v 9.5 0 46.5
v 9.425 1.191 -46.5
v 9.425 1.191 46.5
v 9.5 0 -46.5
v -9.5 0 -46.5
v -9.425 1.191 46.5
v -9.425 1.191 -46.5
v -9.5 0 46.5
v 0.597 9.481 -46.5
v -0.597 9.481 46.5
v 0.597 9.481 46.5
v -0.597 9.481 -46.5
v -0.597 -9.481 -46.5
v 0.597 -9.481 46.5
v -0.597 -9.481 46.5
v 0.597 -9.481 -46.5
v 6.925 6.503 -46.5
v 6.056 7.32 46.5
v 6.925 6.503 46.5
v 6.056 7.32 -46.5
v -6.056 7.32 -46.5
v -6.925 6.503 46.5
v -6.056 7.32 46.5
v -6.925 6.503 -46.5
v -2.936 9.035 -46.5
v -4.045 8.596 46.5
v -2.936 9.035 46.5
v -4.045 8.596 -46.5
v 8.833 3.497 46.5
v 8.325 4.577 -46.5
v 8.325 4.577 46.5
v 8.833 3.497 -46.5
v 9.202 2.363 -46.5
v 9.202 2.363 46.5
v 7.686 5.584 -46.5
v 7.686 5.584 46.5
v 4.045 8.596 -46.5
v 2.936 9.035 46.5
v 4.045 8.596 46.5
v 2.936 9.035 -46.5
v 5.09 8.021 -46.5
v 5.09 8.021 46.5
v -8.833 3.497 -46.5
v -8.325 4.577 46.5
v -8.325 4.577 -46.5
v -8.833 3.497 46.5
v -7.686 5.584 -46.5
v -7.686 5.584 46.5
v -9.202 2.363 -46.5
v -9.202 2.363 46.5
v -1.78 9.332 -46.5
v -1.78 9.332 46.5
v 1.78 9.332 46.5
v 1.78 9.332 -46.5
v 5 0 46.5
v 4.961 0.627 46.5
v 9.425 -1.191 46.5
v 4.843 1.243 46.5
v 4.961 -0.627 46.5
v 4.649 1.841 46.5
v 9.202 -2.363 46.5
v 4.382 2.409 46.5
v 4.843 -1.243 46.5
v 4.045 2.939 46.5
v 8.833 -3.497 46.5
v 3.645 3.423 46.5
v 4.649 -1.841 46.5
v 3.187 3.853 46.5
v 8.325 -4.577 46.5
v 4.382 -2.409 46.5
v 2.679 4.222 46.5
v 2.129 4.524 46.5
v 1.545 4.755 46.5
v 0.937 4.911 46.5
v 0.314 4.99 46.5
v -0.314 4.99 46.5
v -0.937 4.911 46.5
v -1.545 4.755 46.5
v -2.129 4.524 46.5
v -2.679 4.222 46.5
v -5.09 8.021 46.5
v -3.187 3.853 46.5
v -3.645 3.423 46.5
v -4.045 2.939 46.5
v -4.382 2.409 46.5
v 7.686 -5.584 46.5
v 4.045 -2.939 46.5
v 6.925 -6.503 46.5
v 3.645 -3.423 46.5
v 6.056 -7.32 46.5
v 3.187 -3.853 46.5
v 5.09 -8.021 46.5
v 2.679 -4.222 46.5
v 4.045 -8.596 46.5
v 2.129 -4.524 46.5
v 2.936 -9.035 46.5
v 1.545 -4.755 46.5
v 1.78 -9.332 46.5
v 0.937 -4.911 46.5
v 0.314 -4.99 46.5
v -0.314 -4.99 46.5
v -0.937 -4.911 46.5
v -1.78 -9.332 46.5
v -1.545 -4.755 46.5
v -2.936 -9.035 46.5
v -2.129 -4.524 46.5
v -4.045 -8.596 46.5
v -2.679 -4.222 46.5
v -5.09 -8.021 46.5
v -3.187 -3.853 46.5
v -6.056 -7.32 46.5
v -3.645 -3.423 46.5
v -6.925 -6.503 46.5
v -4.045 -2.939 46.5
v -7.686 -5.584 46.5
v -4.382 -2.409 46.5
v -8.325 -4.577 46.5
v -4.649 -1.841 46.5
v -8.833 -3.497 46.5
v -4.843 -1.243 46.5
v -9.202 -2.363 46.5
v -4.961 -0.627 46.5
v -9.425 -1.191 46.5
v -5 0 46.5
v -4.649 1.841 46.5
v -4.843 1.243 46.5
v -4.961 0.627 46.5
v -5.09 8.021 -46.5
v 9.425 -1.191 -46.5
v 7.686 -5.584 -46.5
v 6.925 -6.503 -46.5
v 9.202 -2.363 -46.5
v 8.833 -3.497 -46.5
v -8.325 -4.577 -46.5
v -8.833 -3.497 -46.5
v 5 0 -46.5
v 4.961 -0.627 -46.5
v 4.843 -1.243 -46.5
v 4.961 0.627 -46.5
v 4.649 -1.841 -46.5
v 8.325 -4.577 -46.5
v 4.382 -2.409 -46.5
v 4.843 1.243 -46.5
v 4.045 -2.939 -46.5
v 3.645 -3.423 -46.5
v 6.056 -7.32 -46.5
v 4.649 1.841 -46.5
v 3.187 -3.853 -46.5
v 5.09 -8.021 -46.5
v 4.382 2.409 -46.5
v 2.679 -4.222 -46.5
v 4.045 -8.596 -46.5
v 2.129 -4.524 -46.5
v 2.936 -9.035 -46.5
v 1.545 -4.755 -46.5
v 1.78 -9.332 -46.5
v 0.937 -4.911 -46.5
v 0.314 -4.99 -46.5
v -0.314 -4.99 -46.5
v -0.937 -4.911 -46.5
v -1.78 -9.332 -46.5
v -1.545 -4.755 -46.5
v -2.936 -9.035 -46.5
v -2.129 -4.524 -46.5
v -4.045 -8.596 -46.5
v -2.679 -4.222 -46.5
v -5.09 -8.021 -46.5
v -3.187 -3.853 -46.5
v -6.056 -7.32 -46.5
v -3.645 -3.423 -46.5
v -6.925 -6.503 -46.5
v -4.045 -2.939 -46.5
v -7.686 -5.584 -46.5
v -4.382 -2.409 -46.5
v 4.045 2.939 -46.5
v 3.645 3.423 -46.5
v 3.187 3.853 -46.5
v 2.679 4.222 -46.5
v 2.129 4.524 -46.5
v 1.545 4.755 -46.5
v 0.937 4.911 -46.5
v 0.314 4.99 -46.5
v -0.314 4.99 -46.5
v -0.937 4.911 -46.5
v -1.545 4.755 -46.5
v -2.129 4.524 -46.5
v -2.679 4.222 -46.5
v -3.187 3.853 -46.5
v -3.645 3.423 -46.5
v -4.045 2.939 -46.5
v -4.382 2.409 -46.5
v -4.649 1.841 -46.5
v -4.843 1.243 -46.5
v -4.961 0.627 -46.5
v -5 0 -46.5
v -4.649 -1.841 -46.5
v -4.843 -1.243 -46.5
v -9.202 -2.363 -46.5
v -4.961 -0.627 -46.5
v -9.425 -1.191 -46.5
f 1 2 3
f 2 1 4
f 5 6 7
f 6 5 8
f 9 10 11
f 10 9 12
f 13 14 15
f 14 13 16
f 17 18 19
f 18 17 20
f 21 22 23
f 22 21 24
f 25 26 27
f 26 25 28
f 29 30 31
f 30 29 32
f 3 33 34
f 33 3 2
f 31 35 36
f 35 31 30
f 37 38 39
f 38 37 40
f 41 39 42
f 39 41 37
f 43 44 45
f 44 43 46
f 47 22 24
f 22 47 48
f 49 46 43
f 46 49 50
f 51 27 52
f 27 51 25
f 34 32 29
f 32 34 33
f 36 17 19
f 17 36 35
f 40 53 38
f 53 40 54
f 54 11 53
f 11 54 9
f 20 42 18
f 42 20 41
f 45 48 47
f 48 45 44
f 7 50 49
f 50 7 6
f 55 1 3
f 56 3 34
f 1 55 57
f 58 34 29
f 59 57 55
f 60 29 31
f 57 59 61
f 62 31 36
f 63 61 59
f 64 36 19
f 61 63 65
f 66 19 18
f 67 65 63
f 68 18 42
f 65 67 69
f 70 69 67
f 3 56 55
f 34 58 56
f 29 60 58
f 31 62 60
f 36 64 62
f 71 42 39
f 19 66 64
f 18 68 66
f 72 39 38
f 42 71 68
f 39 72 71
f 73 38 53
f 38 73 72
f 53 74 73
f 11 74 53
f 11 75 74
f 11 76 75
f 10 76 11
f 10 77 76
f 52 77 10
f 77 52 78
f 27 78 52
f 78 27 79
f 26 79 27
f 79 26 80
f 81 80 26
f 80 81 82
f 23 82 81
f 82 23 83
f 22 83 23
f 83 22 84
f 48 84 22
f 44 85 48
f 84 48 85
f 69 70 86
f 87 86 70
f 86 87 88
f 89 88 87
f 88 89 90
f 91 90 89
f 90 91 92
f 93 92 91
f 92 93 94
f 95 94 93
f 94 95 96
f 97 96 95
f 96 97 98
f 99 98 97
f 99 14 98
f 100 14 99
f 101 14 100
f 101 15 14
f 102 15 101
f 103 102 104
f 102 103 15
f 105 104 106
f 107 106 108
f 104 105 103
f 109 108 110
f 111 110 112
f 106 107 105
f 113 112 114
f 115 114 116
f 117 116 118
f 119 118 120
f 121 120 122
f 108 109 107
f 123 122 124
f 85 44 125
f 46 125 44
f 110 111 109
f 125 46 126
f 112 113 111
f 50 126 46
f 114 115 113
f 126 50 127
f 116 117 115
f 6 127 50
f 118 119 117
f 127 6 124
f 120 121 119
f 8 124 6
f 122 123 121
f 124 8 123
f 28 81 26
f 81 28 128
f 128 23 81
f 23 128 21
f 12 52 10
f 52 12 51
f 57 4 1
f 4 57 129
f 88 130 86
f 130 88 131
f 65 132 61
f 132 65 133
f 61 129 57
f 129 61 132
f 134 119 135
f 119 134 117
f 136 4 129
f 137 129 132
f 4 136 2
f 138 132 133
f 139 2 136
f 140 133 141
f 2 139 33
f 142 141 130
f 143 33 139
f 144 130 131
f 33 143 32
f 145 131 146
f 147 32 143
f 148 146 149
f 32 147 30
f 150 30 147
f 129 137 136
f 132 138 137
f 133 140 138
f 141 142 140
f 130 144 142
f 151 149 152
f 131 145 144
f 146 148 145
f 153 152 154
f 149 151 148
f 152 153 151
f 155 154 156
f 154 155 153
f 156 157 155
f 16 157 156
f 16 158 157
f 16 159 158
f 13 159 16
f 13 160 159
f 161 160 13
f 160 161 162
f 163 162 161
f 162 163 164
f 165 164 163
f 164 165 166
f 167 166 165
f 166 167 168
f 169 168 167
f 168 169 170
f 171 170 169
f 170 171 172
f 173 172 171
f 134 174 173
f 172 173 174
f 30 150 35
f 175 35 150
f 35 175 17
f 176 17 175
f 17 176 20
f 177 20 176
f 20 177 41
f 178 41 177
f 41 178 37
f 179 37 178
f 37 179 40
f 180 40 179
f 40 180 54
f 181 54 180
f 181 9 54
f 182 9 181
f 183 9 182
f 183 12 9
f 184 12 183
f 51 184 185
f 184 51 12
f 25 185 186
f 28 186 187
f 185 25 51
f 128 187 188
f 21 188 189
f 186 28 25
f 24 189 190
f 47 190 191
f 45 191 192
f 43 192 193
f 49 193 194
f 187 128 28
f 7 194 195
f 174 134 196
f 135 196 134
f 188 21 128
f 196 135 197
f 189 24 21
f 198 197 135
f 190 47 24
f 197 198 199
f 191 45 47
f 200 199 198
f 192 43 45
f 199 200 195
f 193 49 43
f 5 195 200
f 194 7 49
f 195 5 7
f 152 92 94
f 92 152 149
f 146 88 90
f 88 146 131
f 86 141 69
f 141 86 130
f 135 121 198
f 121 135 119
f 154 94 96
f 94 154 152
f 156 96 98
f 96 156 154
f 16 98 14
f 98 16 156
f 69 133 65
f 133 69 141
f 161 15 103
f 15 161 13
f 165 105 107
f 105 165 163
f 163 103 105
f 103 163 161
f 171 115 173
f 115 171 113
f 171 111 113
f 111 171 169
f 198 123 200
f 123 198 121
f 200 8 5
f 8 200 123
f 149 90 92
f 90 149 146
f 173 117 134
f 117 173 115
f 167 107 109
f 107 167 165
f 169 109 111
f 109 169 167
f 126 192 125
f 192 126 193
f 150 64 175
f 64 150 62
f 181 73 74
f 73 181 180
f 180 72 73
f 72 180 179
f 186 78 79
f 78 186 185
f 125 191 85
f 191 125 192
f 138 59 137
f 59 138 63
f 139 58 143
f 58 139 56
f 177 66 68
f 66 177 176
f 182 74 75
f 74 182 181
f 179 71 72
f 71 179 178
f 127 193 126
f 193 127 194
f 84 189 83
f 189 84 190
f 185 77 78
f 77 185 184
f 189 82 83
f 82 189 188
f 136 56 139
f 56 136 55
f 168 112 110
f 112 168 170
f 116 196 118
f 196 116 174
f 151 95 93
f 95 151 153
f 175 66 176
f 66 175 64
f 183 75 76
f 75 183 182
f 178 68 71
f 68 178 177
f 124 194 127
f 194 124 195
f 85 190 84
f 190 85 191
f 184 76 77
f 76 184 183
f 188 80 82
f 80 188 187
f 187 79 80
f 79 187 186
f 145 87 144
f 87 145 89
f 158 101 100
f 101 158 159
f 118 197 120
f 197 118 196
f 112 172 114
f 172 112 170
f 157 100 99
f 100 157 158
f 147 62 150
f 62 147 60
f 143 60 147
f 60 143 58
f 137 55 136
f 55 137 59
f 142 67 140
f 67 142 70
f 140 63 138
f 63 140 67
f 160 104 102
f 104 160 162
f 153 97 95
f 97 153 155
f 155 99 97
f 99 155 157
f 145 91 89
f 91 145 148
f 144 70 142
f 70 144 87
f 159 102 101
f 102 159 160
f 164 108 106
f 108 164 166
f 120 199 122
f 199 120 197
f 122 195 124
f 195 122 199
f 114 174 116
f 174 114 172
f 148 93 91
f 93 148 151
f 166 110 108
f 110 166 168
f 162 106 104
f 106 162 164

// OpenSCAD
$fn = 50;


difference() {
	union() {
		translate(v = [0, 0, -46.5000000000]) {
			cylinder(h = 93, r = 9.5000000000);
		}
	}
	union() {
		translate(v = [0, 0, -100.0000000000]) {
			cylinder(h = 200, r = 5.0000000000);
		}
	}
}
